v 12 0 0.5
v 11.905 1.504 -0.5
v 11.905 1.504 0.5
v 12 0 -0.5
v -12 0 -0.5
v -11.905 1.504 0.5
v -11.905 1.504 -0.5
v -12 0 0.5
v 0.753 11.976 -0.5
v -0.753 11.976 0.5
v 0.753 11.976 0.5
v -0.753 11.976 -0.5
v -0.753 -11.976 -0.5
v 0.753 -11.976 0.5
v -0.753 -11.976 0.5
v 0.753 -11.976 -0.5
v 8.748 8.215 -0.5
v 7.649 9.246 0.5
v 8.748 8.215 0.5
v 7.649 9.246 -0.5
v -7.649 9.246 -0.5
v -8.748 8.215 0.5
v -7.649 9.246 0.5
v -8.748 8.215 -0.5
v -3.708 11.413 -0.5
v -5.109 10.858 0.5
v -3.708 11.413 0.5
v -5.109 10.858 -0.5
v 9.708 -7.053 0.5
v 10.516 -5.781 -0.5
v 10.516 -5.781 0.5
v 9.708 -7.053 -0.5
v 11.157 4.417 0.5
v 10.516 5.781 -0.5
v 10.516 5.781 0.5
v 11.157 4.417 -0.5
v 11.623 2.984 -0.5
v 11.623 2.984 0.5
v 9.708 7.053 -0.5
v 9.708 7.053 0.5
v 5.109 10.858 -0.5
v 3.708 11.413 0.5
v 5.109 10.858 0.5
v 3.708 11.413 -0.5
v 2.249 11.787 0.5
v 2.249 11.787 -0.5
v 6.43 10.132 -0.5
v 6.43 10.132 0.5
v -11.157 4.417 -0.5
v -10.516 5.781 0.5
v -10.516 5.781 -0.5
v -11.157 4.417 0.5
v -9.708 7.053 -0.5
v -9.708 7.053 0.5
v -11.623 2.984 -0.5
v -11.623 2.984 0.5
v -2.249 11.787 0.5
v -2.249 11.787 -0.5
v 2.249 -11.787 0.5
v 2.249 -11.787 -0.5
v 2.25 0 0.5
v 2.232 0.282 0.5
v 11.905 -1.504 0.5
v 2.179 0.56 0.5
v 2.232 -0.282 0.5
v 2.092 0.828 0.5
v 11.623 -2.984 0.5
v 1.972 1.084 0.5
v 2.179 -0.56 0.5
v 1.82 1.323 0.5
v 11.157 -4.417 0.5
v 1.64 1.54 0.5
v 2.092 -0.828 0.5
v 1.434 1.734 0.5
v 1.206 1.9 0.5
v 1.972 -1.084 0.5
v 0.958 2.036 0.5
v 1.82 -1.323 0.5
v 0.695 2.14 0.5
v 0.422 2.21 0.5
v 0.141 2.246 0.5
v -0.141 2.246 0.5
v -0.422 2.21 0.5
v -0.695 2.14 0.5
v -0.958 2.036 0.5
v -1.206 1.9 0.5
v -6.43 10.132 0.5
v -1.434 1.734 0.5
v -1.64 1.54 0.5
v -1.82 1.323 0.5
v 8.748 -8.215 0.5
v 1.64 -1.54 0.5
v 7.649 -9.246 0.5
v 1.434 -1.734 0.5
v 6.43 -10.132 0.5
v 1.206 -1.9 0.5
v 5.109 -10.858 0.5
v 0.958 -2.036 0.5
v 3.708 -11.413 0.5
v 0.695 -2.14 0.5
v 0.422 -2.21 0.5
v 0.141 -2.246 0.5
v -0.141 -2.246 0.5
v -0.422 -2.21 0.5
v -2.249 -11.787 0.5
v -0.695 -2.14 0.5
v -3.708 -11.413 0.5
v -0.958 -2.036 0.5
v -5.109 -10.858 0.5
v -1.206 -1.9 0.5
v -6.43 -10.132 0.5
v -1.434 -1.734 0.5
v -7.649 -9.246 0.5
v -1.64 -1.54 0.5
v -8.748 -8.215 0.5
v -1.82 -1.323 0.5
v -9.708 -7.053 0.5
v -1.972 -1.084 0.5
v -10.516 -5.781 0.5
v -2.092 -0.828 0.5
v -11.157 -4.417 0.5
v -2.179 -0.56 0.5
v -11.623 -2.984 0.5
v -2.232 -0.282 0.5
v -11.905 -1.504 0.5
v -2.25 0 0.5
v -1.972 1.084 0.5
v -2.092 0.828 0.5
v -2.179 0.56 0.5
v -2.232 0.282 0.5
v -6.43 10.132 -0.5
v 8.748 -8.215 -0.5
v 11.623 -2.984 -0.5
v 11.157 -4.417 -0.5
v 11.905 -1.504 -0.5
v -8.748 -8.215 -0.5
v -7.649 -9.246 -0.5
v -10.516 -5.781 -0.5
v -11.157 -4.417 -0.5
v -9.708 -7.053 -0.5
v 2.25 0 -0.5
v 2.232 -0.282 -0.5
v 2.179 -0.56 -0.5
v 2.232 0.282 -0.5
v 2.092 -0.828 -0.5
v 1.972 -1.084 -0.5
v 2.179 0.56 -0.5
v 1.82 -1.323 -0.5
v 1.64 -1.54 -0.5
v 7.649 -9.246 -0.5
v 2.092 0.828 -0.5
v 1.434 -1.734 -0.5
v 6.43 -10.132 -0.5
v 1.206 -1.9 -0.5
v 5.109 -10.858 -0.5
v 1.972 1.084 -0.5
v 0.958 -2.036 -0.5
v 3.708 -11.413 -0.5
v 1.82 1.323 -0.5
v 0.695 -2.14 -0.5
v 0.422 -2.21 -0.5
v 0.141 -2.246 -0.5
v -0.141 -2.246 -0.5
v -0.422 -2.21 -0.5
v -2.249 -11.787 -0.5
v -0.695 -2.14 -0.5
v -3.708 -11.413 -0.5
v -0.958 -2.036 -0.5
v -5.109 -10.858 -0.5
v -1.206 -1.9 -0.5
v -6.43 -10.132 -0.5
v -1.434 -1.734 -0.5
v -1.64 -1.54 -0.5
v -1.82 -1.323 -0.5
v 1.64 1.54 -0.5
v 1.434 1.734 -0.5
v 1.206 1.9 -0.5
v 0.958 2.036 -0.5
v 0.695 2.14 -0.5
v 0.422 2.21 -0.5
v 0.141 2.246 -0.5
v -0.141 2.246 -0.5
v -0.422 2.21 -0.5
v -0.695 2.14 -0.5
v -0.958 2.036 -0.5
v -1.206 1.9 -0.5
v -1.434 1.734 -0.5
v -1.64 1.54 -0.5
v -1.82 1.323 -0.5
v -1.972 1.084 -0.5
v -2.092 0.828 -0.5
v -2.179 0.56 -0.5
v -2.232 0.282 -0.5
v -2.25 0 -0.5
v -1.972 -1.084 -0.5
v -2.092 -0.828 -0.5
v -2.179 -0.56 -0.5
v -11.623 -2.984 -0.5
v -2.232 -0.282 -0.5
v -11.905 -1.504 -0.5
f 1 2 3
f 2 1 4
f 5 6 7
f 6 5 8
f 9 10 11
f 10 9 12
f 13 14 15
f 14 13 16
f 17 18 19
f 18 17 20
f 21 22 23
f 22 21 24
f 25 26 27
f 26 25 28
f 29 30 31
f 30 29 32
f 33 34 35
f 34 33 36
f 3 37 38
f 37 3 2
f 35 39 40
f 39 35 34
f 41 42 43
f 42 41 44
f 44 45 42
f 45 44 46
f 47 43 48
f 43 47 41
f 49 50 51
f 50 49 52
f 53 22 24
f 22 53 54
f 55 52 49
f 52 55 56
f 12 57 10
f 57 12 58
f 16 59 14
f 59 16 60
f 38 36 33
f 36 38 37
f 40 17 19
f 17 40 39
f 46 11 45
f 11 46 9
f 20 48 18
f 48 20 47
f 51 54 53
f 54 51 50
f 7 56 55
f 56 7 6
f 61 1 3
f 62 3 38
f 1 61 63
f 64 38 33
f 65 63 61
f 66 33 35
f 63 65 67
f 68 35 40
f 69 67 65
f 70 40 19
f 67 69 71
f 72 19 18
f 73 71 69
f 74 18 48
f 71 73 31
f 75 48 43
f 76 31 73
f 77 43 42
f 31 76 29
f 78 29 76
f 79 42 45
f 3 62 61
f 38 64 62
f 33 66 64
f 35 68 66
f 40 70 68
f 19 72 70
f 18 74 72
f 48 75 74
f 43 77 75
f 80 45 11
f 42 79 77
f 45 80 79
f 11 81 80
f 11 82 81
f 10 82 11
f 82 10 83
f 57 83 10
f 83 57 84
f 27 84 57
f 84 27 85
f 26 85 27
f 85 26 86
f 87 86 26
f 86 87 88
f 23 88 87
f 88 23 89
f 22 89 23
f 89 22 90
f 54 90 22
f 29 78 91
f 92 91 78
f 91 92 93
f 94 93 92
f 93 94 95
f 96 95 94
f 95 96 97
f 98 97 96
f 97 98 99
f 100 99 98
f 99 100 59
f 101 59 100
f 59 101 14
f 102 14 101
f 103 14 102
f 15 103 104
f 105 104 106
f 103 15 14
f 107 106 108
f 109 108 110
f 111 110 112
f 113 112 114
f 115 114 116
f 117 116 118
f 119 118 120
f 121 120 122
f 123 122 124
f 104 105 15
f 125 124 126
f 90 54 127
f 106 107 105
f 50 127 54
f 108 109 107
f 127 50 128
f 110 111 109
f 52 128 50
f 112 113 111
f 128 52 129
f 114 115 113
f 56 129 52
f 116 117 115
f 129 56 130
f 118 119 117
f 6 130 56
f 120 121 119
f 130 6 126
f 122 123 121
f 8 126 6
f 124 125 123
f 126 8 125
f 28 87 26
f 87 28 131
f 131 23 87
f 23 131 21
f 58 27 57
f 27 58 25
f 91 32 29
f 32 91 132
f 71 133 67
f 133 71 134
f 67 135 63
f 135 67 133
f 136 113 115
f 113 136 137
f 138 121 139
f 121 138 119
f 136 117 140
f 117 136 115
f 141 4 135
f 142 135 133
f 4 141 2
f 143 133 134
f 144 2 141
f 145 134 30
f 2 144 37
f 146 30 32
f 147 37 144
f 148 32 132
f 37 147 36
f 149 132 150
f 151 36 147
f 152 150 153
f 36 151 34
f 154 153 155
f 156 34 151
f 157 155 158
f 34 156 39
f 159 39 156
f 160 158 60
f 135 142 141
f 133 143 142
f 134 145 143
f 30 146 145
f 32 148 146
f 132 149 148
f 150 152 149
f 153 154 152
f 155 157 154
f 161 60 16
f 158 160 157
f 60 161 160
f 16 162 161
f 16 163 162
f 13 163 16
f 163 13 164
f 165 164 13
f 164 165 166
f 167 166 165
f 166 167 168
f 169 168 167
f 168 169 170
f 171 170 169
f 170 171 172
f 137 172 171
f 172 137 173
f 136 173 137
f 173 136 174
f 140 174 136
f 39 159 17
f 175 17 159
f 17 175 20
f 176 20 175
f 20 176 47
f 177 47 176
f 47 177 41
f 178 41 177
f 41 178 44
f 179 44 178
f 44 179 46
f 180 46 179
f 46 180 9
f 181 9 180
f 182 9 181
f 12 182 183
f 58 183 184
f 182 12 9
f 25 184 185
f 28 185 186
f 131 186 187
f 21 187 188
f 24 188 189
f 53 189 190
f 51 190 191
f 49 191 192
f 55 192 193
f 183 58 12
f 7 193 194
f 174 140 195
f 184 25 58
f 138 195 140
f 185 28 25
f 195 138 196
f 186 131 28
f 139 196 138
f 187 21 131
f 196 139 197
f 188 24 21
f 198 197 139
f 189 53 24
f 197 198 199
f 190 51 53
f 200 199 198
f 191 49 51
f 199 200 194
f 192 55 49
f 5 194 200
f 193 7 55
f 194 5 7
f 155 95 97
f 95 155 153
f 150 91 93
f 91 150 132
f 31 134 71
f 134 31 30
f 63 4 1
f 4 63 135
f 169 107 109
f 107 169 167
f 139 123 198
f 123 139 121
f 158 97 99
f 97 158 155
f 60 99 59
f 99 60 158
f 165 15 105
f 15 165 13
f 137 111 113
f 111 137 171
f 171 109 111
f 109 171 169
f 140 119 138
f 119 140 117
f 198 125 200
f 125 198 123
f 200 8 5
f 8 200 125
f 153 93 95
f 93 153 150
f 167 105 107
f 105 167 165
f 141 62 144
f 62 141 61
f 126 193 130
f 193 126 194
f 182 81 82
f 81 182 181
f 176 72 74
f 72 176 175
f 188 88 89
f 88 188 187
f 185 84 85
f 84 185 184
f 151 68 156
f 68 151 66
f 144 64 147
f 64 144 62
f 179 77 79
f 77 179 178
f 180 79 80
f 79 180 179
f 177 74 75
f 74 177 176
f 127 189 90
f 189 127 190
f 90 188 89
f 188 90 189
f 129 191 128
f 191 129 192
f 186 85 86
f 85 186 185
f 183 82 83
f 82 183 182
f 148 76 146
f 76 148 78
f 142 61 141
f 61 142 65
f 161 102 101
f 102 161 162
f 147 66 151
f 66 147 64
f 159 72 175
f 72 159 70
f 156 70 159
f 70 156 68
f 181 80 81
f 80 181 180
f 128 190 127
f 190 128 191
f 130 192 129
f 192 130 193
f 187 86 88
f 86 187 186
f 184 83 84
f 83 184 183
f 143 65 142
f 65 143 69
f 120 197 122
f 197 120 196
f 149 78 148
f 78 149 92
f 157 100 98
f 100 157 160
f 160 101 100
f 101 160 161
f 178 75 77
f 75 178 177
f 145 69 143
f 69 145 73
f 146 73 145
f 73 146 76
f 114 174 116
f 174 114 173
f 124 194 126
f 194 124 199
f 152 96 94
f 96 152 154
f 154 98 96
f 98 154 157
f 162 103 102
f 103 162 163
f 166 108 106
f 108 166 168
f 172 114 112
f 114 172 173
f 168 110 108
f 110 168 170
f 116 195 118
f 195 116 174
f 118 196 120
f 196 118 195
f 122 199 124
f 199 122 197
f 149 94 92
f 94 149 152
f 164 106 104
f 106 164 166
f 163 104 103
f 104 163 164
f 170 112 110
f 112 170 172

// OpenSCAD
$fn = 50;


difference() {
	union() {
		translate(v = [0, 0, -0.5000000000]) {
			cylinder(h = 1, r = 12.0000000000);
		}
	}
	union() {
		translate(v = [0, 0, -100.0000000000]) {
			cylinder(h = 200, r = 2.2500000000);
		}
	}
}
